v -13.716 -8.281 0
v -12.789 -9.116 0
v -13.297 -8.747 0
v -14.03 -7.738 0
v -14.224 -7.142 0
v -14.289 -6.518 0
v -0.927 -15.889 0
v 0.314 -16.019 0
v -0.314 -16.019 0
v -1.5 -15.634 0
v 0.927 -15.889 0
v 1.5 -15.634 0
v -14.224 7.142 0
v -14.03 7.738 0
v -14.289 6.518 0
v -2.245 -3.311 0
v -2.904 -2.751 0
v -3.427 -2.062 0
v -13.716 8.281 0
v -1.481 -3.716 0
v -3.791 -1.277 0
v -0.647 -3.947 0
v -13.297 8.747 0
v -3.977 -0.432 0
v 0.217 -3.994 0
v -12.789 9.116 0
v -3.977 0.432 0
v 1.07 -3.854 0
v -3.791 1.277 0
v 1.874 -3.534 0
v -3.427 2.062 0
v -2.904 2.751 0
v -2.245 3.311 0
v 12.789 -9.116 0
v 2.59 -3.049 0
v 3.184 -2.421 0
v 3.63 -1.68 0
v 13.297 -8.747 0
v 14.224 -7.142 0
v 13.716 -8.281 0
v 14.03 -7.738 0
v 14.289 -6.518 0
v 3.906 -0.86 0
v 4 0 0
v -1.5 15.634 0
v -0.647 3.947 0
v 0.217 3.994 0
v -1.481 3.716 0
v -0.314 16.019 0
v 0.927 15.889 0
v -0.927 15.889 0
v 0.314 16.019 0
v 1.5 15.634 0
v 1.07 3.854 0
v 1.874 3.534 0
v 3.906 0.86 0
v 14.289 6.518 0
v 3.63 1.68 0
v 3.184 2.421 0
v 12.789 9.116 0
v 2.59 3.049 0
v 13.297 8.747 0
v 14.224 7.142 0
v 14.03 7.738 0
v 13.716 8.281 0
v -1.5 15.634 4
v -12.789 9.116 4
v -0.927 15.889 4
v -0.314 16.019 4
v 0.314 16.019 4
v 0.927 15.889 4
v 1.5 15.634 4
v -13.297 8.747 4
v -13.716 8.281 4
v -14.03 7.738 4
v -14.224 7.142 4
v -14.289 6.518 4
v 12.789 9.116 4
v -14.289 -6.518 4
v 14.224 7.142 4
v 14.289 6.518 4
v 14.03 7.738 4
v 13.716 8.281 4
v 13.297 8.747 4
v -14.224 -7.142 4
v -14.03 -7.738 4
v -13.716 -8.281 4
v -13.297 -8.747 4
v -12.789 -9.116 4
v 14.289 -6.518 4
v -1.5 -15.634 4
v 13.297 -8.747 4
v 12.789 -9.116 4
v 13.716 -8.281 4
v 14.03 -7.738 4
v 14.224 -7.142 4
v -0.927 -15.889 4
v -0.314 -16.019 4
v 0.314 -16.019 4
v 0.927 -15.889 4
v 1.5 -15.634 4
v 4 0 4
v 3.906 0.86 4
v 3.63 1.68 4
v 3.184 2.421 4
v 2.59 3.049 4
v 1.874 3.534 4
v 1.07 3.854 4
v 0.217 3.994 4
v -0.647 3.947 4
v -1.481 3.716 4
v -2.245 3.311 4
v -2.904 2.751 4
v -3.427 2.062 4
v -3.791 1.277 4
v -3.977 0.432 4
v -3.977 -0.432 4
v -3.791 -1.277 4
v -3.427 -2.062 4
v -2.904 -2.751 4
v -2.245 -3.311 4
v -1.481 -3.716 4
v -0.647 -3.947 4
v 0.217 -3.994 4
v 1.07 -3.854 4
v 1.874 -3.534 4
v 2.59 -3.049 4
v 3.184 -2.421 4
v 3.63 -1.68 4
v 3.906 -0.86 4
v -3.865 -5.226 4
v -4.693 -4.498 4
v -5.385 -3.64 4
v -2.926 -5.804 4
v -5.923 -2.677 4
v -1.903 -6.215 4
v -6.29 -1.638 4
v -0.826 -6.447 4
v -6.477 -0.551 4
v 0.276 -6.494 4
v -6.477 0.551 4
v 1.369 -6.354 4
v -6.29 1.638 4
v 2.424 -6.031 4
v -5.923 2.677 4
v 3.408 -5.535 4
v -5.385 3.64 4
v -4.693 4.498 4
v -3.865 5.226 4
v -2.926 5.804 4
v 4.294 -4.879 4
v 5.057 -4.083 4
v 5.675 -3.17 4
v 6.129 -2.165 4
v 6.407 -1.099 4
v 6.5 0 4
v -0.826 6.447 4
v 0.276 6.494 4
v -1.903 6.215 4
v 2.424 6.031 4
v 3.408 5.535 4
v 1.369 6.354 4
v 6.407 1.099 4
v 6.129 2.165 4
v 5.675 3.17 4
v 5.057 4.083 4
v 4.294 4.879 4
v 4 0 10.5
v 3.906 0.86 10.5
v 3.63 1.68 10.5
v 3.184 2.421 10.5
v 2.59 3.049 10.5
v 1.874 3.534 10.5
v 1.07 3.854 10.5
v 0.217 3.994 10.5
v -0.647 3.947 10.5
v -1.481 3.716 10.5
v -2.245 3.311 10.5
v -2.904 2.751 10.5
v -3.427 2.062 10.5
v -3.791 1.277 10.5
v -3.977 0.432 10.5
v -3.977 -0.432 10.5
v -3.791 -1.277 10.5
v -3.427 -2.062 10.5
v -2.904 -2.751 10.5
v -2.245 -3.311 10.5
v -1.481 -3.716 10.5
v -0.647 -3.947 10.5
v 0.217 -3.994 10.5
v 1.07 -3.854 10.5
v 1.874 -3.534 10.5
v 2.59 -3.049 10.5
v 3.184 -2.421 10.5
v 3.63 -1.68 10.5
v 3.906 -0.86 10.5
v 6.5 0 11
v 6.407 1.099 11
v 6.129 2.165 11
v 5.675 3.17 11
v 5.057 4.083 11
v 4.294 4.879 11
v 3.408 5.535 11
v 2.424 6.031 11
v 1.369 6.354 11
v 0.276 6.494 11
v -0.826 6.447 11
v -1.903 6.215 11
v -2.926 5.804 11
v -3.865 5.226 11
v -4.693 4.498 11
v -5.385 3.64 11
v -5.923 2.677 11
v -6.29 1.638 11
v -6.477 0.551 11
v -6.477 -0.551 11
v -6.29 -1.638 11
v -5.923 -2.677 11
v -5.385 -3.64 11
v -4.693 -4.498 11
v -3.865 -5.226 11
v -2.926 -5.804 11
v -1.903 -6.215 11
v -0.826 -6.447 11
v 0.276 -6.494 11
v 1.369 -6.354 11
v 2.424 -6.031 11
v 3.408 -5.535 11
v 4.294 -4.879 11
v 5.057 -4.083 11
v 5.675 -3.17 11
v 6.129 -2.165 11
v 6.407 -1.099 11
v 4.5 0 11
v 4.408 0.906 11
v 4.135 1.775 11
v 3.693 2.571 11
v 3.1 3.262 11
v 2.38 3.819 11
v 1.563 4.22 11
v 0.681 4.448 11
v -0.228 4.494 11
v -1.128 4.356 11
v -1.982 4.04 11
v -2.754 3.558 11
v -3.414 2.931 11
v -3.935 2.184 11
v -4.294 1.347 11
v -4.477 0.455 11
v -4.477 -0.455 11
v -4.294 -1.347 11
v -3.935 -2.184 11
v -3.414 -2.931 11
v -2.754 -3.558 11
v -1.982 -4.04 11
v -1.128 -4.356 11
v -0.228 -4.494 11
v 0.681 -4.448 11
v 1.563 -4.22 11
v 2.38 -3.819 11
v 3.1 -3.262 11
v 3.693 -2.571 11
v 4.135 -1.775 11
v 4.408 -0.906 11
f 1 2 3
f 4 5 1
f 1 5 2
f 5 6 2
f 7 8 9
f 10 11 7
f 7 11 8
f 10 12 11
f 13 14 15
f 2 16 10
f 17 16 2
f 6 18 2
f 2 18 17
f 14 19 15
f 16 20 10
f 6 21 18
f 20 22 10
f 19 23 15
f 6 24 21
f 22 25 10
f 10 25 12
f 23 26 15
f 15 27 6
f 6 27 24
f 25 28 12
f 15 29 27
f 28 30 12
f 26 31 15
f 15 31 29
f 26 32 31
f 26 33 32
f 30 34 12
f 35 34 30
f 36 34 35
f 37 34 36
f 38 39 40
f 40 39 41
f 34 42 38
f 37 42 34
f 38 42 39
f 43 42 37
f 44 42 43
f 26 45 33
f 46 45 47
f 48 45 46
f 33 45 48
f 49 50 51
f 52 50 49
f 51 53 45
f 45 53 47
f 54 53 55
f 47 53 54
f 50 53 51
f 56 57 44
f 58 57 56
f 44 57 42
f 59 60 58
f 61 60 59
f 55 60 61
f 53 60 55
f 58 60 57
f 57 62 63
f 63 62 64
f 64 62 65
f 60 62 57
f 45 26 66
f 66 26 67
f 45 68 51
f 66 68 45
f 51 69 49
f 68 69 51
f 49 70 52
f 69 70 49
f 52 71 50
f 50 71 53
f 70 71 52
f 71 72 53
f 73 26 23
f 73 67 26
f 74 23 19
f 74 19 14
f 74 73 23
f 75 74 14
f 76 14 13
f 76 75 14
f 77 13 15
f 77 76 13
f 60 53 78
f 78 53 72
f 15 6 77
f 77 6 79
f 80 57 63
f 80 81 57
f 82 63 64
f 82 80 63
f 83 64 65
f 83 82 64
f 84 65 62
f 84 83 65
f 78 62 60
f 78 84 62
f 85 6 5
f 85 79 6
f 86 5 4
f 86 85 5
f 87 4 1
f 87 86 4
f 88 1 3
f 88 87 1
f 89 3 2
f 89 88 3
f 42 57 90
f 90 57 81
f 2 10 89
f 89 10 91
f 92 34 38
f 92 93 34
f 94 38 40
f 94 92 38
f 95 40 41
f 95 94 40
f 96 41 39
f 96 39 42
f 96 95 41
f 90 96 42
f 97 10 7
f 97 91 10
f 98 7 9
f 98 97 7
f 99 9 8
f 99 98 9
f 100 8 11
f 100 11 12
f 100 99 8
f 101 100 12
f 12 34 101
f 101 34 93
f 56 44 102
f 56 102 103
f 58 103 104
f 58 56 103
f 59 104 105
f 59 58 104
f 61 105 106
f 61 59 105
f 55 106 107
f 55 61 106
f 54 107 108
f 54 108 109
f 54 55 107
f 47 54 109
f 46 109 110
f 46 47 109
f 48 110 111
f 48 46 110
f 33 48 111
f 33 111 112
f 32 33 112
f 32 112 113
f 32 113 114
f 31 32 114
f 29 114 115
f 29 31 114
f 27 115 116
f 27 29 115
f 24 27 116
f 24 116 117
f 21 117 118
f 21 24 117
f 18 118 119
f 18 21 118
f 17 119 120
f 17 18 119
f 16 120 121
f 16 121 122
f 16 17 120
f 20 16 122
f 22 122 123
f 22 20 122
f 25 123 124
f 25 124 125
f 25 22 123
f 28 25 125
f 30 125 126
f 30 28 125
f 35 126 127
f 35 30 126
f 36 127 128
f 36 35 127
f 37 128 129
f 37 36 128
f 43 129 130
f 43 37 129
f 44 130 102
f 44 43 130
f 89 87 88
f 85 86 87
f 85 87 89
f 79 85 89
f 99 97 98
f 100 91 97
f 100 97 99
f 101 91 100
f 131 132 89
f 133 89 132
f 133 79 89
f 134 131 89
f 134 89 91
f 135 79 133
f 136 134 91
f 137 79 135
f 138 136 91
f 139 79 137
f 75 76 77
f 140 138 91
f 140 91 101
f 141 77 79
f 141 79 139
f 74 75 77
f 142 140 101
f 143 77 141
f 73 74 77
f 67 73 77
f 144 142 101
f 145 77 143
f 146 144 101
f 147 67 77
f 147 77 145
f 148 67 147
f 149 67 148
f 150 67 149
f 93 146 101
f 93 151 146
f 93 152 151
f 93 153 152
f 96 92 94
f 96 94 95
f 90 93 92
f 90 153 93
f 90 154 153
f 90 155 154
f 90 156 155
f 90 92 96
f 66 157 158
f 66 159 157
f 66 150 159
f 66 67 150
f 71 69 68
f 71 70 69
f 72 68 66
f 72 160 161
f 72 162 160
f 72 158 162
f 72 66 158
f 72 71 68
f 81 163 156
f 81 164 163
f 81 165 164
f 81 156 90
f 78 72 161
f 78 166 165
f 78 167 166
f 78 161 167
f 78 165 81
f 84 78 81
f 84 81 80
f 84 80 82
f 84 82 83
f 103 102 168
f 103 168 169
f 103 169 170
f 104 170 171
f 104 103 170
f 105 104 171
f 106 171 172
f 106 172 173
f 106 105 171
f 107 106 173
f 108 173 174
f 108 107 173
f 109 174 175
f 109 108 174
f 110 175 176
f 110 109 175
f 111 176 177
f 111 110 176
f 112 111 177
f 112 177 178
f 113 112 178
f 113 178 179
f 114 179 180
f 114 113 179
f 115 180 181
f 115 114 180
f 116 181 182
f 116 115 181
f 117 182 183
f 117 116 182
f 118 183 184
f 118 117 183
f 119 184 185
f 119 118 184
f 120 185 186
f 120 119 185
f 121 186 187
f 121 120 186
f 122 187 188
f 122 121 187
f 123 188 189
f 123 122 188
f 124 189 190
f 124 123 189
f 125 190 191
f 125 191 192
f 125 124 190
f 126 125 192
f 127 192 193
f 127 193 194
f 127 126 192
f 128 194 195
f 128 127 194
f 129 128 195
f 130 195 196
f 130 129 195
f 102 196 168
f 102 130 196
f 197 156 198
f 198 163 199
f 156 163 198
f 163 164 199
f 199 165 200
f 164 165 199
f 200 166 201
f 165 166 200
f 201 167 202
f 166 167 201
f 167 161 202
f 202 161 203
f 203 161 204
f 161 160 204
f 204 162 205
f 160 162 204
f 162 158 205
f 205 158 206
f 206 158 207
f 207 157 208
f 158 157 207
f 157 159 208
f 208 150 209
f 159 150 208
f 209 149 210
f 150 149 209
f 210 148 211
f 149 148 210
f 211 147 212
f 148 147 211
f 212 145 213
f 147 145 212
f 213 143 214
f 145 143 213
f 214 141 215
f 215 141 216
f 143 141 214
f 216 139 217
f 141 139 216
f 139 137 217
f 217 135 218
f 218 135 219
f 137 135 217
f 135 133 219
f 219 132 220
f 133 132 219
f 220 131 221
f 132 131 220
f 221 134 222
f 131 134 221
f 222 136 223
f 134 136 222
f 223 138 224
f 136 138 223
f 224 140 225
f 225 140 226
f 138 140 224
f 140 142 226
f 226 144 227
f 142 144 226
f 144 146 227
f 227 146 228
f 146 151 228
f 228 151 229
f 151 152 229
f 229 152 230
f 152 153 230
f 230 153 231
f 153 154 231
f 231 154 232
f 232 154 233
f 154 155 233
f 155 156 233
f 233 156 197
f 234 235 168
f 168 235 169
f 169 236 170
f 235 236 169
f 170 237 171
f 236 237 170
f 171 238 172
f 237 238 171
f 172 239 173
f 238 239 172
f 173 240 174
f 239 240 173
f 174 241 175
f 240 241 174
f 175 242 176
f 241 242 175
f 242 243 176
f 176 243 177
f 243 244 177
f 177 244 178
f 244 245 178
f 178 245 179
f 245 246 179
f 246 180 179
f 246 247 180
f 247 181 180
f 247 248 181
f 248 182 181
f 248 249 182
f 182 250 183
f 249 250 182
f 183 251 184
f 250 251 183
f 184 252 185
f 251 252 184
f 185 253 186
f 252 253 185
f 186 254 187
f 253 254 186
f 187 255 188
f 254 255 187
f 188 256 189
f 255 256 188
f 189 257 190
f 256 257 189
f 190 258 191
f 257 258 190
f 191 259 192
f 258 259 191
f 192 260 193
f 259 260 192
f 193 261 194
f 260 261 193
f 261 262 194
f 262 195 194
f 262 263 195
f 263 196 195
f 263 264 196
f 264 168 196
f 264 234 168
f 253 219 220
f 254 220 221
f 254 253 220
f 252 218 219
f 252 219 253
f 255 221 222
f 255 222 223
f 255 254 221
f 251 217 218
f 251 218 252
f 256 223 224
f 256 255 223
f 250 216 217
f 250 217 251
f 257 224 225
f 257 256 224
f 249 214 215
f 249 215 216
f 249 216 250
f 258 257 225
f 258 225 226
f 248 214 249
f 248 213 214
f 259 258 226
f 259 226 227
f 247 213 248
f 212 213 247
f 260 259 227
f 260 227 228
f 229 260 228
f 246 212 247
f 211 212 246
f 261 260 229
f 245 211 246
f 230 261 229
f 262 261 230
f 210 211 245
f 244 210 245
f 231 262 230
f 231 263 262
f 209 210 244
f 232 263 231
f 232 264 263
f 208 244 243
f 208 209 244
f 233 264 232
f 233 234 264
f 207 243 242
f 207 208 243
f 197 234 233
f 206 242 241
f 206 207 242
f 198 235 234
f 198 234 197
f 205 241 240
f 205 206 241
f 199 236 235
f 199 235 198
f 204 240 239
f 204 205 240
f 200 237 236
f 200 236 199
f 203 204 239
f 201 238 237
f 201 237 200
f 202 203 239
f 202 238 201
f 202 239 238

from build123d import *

# Parameters (mm, degrees)
SKETCH_R      = 4
PAD_DEPTH     = 4
SKETCH001_R   = 6.5
SKETCH001_R_2 = 4
PAD001_DEPTH  = 7
CHAMFER_SIZE  = 0.5
FILLET_R      = 3


with BuildPart() as part:
    # Sketch → Pad (new body)
    with BuildSketch(Plane.XY):
        Polygon((0, 16.5), (-14.289419, 8.25), (-14.289419, -8.25), (0, -16.5), (14.289419, -8.25), (14.289419, 8.25), align=None)
        Circle(SKETCH_R, mode=Mode.SUBTRACT)
    extrude(amount=PAD_DEPTH)

    # Sketch001 (on Face9 of Pad) → Pad001 (join)
    with BuildSketch(Plane.XY.offset(4)):
        Circle(SKETCH001_R)
        Circle(SKETCH001_R_2, mode=Mode.SUBTRACT)
    extrude(amount=PAD001_DEPTH)

    # Chamfer
    chamfer_edges = [part.edges().sort_by_distance(p)[0] for p in [
        (-4, 0, 11),
    ]]
    chamfer(chamfer_edges, length=CHAMFER_SIZE)

    # Fillet
    fillet_edges = [part.edges().sort_by_distance(p)[0] for p in [
        (0, -16.5, 2),
        (14.289419, -8.25, 2),
        (14.289419, 8.25, 2),
        (-14.289419, -8.25, 2),
        (-14.289419, 8.25, 2),
        (0, 16.5, 2),
    ]]
    fillet(fillet_edges, radius=FILLET_R)


solid = part.part
